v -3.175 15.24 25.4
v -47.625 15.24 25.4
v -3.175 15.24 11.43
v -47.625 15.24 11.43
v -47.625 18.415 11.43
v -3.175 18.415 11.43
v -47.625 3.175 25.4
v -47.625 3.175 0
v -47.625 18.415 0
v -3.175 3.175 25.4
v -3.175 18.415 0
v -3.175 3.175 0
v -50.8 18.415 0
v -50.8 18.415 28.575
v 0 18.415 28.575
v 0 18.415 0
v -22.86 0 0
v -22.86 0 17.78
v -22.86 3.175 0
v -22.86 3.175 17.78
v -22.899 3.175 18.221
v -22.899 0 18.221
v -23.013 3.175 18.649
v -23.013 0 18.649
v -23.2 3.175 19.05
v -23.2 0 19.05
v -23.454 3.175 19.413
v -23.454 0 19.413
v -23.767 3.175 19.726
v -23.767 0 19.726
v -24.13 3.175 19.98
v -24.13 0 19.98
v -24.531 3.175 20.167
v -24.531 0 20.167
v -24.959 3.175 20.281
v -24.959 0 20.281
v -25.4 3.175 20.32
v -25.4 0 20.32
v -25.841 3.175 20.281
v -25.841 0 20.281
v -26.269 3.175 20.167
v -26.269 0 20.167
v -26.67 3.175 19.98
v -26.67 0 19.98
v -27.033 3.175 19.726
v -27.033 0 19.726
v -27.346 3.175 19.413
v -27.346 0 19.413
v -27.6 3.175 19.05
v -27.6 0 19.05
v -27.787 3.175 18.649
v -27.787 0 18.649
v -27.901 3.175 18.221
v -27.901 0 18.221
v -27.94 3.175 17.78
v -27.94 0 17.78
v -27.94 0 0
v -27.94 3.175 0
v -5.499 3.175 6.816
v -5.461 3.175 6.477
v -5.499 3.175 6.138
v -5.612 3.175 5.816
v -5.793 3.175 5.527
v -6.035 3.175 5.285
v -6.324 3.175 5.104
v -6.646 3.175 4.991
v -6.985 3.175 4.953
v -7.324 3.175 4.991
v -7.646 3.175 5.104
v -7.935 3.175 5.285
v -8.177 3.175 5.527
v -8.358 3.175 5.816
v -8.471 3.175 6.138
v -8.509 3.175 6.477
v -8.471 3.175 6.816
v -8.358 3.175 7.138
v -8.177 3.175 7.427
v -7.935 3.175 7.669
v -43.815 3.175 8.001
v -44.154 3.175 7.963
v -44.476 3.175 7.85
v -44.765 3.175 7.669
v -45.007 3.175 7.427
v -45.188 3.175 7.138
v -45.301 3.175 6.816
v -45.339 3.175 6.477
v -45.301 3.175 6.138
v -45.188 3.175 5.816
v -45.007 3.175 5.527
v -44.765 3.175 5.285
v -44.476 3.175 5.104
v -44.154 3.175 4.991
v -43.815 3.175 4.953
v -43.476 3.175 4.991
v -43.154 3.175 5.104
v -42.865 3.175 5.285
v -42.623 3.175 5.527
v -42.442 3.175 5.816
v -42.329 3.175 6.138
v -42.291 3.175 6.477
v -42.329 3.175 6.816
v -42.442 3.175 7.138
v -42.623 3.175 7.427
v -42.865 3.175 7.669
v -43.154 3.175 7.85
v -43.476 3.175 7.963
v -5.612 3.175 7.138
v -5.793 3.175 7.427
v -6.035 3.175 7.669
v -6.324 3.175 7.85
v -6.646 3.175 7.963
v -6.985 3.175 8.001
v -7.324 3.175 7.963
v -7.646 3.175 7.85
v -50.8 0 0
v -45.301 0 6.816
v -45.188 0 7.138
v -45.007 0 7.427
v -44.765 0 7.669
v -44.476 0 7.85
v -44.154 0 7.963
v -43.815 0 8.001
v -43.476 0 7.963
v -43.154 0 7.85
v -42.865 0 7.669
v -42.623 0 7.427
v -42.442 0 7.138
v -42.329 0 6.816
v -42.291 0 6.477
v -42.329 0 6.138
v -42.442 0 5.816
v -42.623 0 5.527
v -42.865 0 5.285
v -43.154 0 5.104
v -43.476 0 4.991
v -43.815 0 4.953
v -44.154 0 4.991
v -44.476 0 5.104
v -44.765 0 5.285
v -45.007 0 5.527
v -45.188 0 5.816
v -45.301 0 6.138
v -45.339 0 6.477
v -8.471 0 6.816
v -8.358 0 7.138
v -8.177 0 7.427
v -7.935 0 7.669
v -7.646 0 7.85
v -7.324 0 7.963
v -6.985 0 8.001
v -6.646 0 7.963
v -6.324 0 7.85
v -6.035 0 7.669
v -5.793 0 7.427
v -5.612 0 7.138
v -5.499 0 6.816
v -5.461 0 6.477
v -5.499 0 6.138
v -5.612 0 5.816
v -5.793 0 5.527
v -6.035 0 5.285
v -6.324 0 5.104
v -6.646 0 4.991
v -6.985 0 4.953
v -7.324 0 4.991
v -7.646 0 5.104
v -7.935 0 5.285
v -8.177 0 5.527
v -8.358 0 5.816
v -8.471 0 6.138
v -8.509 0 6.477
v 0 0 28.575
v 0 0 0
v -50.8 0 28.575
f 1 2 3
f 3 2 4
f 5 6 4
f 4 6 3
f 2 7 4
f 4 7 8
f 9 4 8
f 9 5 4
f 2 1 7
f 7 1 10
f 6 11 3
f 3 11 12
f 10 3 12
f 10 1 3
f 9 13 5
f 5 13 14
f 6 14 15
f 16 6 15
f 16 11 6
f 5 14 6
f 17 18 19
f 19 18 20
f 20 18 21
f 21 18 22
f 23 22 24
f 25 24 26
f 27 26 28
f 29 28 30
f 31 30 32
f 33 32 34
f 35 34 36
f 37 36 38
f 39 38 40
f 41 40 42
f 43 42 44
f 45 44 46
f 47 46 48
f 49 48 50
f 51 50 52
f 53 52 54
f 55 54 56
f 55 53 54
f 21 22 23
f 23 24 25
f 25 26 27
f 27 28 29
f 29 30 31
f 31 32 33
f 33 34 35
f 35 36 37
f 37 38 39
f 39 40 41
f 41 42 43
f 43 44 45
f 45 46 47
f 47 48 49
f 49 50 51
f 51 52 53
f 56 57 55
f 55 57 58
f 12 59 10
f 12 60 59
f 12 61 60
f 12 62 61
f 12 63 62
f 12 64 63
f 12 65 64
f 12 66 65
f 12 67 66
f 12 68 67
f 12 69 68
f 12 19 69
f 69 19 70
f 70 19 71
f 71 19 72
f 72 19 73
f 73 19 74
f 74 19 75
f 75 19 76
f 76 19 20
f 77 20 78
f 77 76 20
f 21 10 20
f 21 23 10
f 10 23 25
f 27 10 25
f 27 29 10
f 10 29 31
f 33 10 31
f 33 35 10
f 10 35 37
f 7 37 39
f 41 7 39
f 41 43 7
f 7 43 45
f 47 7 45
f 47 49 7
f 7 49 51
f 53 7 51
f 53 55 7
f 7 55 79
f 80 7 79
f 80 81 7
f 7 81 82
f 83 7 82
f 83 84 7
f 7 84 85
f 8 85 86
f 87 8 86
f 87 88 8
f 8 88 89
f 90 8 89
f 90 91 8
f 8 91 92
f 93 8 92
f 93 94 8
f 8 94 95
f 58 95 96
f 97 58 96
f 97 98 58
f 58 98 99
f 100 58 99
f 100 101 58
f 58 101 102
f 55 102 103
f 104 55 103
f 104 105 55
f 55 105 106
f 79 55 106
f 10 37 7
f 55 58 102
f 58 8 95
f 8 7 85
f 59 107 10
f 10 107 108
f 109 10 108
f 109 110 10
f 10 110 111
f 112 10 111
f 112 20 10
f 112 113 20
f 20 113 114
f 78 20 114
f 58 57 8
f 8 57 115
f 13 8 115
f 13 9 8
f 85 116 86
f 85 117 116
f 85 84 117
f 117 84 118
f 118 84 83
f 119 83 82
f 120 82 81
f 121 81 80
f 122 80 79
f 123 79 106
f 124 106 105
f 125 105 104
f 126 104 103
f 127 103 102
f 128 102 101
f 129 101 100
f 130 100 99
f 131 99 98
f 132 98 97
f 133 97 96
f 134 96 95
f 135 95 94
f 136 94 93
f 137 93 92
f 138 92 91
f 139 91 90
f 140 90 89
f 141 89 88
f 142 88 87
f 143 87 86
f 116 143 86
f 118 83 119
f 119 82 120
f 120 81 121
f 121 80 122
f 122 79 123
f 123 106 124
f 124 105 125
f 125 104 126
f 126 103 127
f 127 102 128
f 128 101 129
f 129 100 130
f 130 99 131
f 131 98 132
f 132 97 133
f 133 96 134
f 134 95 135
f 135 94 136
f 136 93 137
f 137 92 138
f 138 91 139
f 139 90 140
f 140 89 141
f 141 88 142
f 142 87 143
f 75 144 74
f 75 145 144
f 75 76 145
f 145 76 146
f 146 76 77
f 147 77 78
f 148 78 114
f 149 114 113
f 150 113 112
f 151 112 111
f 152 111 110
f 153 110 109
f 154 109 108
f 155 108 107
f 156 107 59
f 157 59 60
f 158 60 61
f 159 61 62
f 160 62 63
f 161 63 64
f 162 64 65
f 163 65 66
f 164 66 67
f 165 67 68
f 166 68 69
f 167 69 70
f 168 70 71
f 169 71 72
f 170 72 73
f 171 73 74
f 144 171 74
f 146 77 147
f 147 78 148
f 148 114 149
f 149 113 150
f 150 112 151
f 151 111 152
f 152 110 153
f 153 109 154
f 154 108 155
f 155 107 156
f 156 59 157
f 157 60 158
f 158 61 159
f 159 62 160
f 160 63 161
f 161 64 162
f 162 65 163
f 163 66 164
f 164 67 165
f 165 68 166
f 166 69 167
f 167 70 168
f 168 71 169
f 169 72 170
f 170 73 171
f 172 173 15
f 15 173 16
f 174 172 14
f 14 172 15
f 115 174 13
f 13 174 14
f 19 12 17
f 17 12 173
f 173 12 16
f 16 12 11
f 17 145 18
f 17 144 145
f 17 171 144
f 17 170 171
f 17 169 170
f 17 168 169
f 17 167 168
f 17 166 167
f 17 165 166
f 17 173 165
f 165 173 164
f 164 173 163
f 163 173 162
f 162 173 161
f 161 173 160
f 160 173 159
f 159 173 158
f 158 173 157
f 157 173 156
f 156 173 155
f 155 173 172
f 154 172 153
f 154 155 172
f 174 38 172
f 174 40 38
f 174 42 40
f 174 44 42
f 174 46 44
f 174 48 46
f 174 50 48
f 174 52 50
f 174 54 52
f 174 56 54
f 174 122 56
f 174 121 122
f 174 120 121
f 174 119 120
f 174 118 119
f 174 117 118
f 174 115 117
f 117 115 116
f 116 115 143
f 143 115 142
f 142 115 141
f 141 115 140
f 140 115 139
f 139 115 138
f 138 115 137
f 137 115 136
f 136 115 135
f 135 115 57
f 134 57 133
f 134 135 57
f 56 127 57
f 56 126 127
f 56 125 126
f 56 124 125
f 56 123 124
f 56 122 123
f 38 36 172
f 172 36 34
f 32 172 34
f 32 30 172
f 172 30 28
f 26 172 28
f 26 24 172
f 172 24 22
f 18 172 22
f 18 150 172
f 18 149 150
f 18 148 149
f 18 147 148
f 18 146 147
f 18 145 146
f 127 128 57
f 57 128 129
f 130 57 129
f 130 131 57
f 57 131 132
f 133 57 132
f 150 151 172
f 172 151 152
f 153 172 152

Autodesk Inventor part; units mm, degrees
ref_plane "YZ Plane" through (0, 0, 0) normal (1, 0, 0) x (0, 1, 0)
ref_plane "XZ Plane" through (0, 0, 0) normal (0, 1, 0) x (-1, 0, 0)
ref_plane "XY Plane" through (0, 0, 0) normal (0, 0, 1) x (1, 0, 0)
sketch "Sketch1" plane through (0, 0, 0) normal (0, 1, 0) x (-1, 0, 0)
  line L0 (0, 0) -> (50.8, 0)
  line L1 (50.8, 0) -> (50.8, 28.575)
  line L2 (50.8, 28.575) -> (0, 28.575)
  line L3 (0, 28.575) -> (0, 0)
  line L4 (0, 28.575) -> (50.8, 28.575)
  line L5 (50.8, 28.575) -> (50.8, 25.4)
  line L6 (47.625, 25.4) -> (3.175, 25.4)
  line L7 (0, 25.4) -> (0, 28.575)
  line L8 (47.625, 25.4) -> (47.625, 0)
  line L9 (47.625, 0) -> (50.8, 0)
  line L10 (50.8, 0) -> (50.8, 25.4)
  line L11 (0, 0) -> (3.175, 0)
  line L12 (3.175, 0) -> (3.175, 25.4)
  line L13 (0, 25.4) -> (0, 0)
  line L14 (25.4, 0) -> (27.94, 0)
  line L15 (25.4, 0) -> (22.86, 0)
  line L16 (22.86, 0) -> (27.94, 0)
  line L17 (27.94, 0) -> (27.94, 17.78)
  line L18 (22.86, 17.78) -> (22.86, 0)
  arc A0 (27.94, 17.78) -> (22.86, 17.78) centre (25.4, 17.78) ccw
  line L19 (3.175, 0) -> (6.985, 0)
  circle A1 centre (6.985, 6.477) radius 1.524
  line L20 (47.625, 0) -> (43.815, 0)
  circle A2 centre (43.815, 6.477) radius 1.524
  dimension "d0" = 50.8
  dimension "d1" = 28.575
  dimension "d2" = 3.175
  dimension "d3" = 3.175
  dimension "d4" = 3.175
  dimension "d5" = 2.54
  dimension "d6" = 2.54
  dimension "d11" = 3.048
  dimension "d12" = 3.81
extrude "Extrusion1" add sketch "Sketch1" along normal blind 3.175 contours L3 L2 L1 L0 L8 L6 L12 | L12 L6 L8 L0 L17 A0 L18
sketch "Sketch2" plane through (0, 3.175, 0) normal (0, 1, 0) x (1, 0, 0)
  line L0 (-27.94, 0) -> (-50.8, 0) projected
  line L1 (-50.8, 0) -> (-50.8, -28.575) projected
  line L2 (0, -28.575) -> (0, 0) projected
  line L3 (0, -28.575) -> (-50.8, -28.575)
  line L4 (-50.8, -28.575) -> (-50.8, -25.4)
  line L5 (-47.625, -25.4) -> (-3.175, -25.4)
  line L6 (0, -25.4) -> (0, -28.575)
  line L7 (-47.625, -25.4) -> (-47.625, 0)
  line L8 (-47.625, 0) -> (-50.8, 0)
  line L9 (-50.8, 0) -> (-50.8, -25.4)
  line L10 (0, 0) -> (-3.175, 0)
  line L11 (-3.175, 0) -> (-3.175, -25.4)
  line L12 (0, -25.4) -> (0, 0)
  dimension "d15" = 3.175
  dimension "d16" = 3.175
  dimension "d17" = 3.175
extrude "Extrusion2" add sketch "Sketch2" along normal blind 15.24
sketch "Sketch3" plane through (-3.175, 3.175, 25.4) normal (0, 0, -1) x (-1, 0, 0)
  line L0 (44.45, 0) -> (44.45, 15.24) projected
  line L1 (0, 15.24) -> (44.45, 15.24)
  line L2 (44.45, 15.24) -> (44.45, 12.065)
  line L3 (44.45, 12.065) -> (0, 12.065)
  line L4 (0, 12.065) -> (0, 15.24)
  point P0 (-3.175, -3.175)
  dimension "d20" = 3.175
extrude "Extrusion3" add sketch "Sketch3" along normal blind 13.97
properties part number "IR Cover"
